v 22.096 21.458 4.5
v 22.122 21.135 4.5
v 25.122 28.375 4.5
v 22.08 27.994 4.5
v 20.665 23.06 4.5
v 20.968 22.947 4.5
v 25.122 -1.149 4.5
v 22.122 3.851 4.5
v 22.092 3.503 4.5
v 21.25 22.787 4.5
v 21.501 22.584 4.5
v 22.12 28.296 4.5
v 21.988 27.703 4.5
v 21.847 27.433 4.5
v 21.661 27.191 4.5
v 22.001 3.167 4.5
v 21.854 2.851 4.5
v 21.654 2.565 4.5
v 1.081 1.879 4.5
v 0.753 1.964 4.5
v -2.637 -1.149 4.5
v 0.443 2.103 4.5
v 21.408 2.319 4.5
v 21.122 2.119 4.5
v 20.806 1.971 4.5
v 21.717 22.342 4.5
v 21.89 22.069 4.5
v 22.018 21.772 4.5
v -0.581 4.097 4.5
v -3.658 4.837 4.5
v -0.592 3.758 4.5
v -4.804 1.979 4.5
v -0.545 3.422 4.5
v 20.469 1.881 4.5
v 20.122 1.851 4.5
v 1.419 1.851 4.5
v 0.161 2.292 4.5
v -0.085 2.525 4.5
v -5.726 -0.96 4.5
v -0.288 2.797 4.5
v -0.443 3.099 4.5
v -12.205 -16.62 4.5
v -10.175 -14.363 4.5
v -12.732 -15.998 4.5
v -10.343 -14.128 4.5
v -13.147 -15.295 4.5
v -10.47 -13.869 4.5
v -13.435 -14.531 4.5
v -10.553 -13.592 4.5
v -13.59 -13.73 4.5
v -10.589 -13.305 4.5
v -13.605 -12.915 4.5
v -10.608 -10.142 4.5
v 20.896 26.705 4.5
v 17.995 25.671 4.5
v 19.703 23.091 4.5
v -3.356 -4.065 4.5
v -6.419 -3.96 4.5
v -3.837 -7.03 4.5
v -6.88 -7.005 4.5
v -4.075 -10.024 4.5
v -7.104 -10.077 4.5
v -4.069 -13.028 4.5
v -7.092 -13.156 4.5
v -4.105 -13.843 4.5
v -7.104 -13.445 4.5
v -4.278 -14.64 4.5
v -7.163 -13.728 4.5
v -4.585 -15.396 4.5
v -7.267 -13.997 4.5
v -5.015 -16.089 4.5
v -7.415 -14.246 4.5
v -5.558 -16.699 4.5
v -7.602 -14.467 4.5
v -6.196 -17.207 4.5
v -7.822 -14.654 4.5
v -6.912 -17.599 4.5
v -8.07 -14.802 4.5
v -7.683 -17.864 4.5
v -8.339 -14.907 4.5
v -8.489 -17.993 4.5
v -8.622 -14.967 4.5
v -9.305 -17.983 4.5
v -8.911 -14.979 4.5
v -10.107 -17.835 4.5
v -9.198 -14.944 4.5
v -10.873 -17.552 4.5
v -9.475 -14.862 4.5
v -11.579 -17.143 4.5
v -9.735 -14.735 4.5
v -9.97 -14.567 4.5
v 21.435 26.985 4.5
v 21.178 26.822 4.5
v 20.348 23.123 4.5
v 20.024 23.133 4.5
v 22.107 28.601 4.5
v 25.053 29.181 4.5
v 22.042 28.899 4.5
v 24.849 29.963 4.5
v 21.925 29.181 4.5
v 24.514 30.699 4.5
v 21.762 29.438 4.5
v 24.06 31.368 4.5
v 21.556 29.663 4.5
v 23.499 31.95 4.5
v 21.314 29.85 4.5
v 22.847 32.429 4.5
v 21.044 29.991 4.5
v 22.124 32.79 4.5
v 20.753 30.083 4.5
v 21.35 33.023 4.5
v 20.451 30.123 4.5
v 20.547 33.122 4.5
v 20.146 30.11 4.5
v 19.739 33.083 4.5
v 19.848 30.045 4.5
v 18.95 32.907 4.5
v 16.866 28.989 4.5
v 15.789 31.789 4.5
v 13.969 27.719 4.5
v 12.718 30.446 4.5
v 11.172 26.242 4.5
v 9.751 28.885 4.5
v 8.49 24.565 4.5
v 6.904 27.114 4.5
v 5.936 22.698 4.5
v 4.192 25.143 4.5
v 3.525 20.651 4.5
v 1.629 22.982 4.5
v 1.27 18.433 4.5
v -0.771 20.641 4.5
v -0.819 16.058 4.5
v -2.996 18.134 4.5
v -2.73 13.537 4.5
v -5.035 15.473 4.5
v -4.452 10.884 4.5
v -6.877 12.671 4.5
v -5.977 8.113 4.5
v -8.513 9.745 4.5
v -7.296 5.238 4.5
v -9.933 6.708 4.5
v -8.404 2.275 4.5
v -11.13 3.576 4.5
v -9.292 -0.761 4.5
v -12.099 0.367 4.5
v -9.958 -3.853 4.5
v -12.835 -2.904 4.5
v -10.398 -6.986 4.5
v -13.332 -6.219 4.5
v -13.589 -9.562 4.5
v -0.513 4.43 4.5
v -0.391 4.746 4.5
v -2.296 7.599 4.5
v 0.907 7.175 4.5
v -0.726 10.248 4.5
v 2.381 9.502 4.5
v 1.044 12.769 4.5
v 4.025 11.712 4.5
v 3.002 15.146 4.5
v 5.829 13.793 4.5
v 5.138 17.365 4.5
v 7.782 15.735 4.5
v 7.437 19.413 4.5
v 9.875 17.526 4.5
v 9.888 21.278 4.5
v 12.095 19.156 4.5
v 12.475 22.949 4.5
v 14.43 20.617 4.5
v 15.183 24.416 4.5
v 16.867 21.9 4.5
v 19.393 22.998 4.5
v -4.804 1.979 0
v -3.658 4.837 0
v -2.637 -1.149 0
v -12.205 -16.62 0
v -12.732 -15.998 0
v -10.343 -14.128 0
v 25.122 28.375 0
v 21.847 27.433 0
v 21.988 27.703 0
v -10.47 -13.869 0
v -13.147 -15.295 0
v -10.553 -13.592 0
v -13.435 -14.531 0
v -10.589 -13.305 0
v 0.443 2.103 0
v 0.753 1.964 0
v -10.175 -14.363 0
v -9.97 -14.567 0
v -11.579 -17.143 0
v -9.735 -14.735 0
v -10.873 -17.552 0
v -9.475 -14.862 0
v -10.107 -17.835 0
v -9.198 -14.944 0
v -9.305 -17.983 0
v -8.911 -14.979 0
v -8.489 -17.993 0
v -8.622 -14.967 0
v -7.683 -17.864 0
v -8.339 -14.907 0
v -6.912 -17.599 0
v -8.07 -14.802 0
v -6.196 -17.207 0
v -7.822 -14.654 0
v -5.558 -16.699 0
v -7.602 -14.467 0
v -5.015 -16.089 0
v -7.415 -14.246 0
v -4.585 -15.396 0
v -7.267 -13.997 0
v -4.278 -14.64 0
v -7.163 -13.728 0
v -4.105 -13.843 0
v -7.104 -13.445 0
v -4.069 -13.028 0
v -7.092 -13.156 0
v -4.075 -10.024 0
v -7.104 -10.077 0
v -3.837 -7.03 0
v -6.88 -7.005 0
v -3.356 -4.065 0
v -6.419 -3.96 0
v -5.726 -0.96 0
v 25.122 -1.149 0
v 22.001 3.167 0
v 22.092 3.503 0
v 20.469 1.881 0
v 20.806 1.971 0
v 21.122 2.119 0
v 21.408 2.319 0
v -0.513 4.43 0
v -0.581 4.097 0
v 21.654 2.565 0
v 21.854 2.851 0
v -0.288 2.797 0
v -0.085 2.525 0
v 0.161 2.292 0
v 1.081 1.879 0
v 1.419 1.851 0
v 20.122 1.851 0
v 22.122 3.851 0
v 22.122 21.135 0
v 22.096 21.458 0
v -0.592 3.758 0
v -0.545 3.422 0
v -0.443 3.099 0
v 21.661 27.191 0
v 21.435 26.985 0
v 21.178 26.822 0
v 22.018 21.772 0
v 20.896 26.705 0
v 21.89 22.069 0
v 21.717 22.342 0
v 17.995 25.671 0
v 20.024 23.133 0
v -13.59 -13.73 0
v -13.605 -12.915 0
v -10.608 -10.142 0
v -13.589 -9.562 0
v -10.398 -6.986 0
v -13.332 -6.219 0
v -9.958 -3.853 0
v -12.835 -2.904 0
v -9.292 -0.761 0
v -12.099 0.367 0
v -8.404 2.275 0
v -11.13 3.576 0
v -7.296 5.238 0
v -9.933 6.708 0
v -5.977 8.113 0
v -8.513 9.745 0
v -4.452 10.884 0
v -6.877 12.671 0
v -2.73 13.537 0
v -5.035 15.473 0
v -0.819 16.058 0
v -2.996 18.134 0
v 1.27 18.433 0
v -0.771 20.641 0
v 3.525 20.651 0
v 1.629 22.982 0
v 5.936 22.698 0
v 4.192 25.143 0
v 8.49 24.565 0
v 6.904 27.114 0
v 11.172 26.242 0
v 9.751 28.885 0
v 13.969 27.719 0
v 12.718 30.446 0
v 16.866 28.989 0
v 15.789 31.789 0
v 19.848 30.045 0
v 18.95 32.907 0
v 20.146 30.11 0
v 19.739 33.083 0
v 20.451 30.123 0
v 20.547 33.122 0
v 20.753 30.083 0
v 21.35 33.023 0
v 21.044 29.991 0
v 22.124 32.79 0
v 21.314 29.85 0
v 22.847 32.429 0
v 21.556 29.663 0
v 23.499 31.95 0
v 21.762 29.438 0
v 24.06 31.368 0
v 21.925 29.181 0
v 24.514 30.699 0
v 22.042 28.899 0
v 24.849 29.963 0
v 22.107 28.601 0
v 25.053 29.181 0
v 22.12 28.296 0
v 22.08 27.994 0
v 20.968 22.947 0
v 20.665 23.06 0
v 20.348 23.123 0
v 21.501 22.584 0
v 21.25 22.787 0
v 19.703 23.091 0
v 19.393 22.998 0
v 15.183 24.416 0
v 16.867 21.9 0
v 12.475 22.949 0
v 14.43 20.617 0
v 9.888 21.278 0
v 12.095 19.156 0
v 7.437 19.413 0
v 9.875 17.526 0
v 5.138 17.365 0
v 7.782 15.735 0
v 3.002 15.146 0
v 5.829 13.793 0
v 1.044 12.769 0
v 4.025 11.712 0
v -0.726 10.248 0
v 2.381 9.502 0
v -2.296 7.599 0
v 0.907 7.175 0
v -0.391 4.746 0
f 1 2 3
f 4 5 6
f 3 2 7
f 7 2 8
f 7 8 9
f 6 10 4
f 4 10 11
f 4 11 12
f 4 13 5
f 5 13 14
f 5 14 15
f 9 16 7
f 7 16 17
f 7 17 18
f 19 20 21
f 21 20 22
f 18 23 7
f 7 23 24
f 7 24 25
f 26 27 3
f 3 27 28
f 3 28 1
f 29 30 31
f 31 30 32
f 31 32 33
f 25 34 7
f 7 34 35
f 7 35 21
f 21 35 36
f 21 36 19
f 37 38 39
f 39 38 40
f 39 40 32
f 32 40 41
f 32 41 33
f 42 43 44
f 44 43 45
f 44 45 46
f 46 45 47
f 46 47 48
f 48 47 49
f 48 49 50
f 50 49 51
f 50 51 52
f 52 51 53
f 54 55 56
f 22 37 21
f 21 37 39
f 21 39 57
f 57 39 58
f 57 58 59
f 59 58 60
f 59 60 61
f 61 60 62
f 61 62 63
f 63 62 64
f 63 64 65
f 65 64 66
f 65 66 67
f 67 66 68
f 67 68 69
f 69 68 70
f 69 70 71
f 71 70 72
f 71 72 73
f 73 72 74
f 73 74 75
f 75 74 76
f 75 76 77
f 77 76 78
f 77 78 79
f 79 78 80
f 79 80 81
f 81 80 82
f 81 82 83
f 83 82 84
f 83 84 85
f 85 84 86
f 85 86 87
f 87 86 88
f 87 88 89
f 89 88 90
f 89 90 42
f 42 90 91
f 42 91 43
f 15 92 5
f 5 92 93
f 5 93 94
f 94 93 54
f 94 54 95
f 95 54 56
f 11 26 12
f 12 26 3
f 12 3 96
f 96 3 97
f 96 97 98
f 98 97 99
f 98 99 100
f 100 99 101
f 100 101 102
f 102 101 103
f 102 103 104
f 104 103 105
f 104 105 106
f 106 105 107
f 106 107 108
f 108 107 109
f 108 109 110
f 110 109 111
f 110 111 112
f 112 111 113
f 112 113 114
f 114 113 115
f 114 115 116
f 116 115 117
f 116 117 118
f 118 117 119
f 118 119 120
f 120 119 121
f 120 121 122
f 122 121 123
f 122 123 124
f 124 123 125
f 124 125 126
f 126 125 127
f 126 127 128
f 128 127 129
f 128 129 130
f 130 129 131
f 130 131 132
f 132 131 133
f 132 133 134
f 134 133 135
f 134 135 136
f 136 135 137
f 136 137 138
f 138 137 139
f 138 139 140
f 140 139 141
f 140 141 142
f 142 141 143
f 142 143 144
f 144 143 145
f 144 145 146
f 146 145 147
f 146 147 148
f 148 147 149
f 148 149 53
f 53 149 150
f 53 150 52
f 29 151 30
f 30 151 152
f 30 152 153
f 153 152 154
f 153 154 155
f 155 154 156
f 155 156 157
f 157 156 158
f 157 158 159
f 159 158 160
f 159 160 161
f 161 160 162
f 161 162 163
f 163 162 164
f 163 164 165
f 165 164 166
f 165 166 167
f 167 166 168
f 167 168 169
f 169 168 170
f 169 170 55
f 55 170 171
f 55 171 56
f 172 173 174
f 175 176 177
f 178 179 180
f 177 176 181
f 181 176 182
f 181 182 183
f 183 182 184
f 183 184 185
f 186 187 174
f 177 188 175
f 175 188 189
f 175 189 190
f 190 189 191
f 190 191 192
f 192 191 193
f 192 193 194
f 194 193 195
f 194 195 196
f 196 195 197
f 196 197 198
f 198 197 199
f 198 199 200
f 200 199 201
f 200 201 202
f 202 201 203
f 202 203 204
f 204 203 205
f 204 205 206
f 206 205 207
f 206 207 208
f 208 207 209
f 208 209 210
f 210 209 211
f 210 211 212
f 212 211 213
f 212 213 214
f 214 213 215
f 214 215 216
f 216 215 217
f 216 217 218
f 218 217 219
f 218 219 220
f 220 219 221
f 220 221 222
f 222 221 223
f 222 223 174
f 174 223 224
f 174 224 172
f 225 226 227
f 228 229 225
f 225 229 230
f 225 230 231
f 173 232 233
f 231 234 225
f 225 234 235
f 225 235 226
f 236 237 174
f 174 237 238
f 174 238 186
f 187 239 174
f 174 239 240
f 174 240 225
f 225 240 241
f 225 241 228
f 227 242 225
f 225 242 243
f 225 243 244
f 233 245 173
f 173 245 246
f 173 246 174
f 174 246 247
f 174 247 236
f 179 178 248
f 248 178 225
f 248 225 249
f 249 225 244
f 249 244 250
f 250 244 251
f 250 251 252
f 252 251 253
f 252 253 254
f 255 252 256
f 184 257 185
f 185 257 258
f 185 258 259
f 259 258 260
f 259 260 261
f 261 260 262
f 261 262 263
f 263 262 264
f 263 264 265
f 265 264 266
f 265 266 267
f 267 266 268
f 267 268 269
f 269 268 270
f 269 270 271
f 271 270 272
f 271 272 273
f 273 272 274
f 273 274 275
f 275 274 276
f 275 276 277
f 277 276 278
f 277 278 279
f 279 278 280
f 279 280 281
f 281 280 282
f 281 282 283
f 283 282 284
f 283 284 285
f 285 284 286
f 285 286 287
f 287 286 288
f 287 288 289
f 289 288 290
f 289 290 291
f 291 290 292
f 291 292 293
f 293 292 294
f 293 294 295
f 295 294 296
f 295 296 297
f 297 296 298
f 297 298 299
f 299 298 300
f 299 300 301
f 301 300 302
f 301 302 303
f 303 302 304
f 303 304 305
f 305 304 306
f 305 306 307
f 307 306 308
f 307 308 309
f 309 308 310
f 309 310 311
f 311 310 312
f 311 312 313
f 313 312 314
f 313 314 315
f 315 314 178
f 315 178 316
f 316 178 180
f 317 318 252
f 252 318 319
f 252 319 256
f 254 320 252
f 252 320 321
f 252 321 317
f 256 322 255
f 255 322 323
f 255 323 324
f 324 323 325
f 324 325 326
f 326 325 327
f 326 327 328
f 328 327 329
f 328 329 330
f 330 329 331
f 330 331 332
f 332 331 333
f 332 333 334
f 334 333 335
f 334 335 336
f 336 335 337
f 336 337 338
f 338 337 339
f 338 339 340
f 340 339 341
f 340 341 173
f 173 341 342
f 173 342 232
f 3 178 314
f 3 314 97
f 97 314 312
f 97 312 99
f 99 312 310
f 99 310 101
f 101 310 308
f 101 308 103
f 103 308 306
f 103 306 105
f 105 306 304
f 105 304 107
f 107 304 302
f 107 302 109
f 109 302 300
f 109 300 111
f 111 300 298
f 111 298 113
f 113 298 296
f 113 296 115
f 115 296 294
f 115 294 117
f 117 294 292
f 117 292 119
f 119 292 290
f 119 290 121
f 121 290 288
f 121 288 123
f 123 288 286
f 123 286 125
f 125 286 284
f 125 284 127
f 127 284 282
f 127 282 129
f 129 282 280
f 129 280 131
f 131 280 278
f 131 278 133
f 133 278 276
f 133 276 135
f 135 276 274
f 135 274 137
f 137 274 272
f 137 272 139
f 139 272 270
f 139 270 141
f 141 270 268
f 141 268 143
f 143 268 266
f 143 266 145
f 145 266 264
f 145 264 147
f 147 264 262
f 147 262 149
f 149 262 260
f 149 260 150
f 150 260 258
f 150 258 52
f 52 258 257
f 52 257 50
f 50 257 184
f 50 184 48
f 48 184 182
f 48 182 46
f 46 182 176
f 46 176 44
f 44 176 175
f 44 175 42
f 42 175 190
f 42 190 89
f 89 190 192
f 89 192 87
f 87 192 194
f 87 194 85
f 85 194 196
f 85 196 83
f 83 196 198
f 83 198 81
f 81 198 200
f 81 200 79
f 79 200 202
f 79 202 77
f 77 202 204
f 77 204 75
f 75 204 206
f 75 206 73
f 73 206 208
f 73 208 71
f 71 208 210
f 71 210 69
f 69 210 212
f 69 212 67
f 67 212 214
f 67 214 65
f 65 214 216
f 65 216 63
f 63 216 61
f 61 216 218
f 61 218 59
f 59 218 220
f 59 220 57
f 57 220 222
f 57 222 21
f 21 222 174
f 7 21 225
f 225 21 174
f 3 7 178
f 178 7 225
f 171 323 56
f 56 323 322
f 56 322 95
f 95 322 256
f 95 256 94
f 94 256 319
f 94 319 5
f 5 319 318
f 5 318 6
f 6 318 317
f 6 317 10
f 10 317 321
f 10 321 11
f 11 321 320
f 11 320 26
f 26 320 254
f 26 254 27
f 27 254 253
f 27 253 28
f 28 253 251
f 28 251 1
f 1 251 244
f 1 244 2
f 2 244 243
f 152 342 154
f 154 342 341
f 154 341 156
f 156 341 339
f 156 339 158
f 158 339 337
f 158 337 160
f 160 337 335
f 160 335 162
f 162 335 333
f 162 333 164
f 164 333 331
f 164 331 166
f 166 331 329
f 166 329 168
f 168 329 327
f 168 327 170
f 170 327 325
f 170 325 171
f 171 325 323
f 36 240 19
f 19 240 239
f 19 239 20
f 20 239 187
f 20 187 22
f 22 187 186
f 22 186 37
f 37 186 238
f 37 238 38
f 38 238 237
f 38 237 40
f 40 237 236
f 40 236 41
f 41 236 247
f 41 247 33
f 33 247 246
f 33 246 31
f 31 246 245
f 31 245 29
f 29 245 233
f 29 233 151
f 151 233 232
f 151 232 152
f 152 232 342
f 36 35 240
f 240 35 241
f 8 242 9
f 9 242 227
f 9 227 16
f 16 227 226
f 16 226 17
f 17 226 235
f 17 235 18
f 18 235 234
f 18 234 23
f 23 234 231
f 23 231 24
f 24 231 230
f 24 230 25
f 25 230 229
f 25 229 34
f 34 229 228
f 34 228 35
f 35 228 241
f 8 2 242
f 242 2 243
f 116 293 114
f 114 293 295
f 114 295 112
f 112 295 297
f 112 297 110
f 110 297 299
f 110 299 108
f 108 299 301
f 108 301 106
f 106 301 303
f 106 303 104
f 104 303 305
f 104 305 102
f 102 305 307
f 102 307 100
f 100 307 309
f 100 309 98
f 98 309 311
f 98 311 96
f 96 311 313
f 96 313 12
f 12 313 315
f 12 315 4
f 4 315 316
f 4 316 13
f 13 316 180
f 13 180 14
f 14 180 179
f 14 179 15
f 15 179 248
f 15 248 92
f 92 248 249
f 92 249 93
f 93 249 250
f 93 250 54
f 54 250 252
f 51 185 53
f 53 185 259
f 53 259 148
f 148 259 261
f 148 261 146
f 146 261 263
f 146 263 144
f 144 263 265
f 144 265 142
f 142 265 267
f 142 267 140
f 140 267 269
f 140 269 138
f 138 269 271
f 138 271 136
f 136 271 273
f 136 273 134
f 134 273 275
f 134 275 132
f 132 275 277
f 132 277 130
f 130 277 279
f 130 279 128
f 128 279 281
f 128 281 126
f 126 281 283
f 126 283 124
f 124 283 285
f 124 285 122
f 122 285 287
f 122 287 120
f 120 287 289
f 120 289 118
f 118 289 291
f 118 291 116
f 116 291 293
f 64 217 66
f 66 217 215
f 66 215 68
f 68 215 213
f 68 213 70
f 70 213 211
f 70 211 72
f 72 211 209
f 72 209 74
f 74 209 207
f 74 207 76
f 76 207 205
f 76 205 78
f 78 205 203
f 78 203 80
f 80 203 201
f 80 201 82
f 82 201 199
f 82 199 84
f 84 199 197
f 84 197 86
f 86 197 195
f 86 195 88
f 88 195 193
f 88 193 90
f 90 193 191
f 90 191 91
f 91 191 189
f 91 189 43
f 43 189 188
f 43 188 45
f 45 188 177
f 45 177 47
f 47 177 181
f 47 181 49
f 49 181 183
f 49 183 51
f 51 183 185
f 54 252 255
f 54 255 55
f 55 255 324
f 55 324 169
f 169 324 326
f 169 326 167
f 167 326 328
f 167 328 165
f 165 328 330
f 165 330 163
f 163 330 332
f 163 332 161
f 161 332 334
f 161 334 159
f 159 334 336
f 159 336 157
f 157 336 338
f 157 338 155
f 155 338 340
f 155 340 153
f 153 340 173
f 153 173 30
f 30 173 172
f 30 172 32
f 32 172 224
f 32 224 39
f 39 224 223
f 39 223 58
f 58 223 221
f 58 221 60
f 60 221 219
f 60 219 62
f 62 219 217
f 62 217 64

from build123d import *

# Parameters (mm, degrees)
BOSS_EXTRUDE1_DEPTH = 4.5


with BuildPart() as part:
    # Sketch1 → Boss-Extrude1 (new body)
    with BuildSketch(Plane.XY):
        with BuildLine():
            Line((-2.6366524, -1.149368065), (25.121954618, -1.149368065))
            Line((25.121954618, -1.149368065), (25.121954618, 28.374931045))
            ThreePointArc((25.121954618, 28.374931045), (23.183396216, 32.203546479), (18.950040453, 32.907111548))
            ThreePointArc((18.950040453, 32.907111548), (-5.035386419, 15.47250193), (-13.605299783, -12.914517987))
            ThreePointArc((-13.605299783, -12.914517987), (-8.8972368, -18.005680822), (-4.0694524, -13.027900808))
            ThreePointArc((-4.0694524, -13.027900808), (-3.836748935, -7.030290497), (-2.6366524, -1.149368065))
        make_face()
        with BuildLine():
            Line((1.419098269, 1.850631935), (20.121954618, 1.850631935))
            ThreePointArc((20.121954618, 1.850631935), (21.53616818, 2.436418372), (22.121954618, 3.850631935))
            Line((22.121954618, 3.850631935), (22.121954618, 21.135325995))
            ThreePointArc((22.121954618, 21.135325995), (21.249580029, 22.78713135), (19.393493686, 22.997943688))
            ThreePointArc((19.393493686, 22.997943688), (7.78243837, 15.73507518), (-0.390986112, 4.745944333))
            ThreePointArc((-0.390986112, 4.745944333), (-0.288183148, 2.79674616), (1.419098269, 1.850631935))
        make_face(mode=Mode.SUBTRACT)
        with BuildLine():
            ThreePointArc((19.848091505, 30.044681757), (-2.729641043, 13.536951641), (-10.588882657, -13.30502075))
            ThreePointArc((-10.588882657, -13.30502075), (-8.766141749, -14.979122175), (-7.092040324, -13.156381267))
            ThreePointArc((-7.092040324, -13.156381267), (0.134806128, 11.525747423), (20.895817731, 26.705180334))
            ThreePointArc((20.895817731, 26.705180334), (22.041705329, 28.898794159), (19.848091505, 30.044681757))
        make_face(mode=Mode.SUBTRACT)
    extrude(amount=BOSS_EXTRUDE1_DEPTH)


solid = part.part
